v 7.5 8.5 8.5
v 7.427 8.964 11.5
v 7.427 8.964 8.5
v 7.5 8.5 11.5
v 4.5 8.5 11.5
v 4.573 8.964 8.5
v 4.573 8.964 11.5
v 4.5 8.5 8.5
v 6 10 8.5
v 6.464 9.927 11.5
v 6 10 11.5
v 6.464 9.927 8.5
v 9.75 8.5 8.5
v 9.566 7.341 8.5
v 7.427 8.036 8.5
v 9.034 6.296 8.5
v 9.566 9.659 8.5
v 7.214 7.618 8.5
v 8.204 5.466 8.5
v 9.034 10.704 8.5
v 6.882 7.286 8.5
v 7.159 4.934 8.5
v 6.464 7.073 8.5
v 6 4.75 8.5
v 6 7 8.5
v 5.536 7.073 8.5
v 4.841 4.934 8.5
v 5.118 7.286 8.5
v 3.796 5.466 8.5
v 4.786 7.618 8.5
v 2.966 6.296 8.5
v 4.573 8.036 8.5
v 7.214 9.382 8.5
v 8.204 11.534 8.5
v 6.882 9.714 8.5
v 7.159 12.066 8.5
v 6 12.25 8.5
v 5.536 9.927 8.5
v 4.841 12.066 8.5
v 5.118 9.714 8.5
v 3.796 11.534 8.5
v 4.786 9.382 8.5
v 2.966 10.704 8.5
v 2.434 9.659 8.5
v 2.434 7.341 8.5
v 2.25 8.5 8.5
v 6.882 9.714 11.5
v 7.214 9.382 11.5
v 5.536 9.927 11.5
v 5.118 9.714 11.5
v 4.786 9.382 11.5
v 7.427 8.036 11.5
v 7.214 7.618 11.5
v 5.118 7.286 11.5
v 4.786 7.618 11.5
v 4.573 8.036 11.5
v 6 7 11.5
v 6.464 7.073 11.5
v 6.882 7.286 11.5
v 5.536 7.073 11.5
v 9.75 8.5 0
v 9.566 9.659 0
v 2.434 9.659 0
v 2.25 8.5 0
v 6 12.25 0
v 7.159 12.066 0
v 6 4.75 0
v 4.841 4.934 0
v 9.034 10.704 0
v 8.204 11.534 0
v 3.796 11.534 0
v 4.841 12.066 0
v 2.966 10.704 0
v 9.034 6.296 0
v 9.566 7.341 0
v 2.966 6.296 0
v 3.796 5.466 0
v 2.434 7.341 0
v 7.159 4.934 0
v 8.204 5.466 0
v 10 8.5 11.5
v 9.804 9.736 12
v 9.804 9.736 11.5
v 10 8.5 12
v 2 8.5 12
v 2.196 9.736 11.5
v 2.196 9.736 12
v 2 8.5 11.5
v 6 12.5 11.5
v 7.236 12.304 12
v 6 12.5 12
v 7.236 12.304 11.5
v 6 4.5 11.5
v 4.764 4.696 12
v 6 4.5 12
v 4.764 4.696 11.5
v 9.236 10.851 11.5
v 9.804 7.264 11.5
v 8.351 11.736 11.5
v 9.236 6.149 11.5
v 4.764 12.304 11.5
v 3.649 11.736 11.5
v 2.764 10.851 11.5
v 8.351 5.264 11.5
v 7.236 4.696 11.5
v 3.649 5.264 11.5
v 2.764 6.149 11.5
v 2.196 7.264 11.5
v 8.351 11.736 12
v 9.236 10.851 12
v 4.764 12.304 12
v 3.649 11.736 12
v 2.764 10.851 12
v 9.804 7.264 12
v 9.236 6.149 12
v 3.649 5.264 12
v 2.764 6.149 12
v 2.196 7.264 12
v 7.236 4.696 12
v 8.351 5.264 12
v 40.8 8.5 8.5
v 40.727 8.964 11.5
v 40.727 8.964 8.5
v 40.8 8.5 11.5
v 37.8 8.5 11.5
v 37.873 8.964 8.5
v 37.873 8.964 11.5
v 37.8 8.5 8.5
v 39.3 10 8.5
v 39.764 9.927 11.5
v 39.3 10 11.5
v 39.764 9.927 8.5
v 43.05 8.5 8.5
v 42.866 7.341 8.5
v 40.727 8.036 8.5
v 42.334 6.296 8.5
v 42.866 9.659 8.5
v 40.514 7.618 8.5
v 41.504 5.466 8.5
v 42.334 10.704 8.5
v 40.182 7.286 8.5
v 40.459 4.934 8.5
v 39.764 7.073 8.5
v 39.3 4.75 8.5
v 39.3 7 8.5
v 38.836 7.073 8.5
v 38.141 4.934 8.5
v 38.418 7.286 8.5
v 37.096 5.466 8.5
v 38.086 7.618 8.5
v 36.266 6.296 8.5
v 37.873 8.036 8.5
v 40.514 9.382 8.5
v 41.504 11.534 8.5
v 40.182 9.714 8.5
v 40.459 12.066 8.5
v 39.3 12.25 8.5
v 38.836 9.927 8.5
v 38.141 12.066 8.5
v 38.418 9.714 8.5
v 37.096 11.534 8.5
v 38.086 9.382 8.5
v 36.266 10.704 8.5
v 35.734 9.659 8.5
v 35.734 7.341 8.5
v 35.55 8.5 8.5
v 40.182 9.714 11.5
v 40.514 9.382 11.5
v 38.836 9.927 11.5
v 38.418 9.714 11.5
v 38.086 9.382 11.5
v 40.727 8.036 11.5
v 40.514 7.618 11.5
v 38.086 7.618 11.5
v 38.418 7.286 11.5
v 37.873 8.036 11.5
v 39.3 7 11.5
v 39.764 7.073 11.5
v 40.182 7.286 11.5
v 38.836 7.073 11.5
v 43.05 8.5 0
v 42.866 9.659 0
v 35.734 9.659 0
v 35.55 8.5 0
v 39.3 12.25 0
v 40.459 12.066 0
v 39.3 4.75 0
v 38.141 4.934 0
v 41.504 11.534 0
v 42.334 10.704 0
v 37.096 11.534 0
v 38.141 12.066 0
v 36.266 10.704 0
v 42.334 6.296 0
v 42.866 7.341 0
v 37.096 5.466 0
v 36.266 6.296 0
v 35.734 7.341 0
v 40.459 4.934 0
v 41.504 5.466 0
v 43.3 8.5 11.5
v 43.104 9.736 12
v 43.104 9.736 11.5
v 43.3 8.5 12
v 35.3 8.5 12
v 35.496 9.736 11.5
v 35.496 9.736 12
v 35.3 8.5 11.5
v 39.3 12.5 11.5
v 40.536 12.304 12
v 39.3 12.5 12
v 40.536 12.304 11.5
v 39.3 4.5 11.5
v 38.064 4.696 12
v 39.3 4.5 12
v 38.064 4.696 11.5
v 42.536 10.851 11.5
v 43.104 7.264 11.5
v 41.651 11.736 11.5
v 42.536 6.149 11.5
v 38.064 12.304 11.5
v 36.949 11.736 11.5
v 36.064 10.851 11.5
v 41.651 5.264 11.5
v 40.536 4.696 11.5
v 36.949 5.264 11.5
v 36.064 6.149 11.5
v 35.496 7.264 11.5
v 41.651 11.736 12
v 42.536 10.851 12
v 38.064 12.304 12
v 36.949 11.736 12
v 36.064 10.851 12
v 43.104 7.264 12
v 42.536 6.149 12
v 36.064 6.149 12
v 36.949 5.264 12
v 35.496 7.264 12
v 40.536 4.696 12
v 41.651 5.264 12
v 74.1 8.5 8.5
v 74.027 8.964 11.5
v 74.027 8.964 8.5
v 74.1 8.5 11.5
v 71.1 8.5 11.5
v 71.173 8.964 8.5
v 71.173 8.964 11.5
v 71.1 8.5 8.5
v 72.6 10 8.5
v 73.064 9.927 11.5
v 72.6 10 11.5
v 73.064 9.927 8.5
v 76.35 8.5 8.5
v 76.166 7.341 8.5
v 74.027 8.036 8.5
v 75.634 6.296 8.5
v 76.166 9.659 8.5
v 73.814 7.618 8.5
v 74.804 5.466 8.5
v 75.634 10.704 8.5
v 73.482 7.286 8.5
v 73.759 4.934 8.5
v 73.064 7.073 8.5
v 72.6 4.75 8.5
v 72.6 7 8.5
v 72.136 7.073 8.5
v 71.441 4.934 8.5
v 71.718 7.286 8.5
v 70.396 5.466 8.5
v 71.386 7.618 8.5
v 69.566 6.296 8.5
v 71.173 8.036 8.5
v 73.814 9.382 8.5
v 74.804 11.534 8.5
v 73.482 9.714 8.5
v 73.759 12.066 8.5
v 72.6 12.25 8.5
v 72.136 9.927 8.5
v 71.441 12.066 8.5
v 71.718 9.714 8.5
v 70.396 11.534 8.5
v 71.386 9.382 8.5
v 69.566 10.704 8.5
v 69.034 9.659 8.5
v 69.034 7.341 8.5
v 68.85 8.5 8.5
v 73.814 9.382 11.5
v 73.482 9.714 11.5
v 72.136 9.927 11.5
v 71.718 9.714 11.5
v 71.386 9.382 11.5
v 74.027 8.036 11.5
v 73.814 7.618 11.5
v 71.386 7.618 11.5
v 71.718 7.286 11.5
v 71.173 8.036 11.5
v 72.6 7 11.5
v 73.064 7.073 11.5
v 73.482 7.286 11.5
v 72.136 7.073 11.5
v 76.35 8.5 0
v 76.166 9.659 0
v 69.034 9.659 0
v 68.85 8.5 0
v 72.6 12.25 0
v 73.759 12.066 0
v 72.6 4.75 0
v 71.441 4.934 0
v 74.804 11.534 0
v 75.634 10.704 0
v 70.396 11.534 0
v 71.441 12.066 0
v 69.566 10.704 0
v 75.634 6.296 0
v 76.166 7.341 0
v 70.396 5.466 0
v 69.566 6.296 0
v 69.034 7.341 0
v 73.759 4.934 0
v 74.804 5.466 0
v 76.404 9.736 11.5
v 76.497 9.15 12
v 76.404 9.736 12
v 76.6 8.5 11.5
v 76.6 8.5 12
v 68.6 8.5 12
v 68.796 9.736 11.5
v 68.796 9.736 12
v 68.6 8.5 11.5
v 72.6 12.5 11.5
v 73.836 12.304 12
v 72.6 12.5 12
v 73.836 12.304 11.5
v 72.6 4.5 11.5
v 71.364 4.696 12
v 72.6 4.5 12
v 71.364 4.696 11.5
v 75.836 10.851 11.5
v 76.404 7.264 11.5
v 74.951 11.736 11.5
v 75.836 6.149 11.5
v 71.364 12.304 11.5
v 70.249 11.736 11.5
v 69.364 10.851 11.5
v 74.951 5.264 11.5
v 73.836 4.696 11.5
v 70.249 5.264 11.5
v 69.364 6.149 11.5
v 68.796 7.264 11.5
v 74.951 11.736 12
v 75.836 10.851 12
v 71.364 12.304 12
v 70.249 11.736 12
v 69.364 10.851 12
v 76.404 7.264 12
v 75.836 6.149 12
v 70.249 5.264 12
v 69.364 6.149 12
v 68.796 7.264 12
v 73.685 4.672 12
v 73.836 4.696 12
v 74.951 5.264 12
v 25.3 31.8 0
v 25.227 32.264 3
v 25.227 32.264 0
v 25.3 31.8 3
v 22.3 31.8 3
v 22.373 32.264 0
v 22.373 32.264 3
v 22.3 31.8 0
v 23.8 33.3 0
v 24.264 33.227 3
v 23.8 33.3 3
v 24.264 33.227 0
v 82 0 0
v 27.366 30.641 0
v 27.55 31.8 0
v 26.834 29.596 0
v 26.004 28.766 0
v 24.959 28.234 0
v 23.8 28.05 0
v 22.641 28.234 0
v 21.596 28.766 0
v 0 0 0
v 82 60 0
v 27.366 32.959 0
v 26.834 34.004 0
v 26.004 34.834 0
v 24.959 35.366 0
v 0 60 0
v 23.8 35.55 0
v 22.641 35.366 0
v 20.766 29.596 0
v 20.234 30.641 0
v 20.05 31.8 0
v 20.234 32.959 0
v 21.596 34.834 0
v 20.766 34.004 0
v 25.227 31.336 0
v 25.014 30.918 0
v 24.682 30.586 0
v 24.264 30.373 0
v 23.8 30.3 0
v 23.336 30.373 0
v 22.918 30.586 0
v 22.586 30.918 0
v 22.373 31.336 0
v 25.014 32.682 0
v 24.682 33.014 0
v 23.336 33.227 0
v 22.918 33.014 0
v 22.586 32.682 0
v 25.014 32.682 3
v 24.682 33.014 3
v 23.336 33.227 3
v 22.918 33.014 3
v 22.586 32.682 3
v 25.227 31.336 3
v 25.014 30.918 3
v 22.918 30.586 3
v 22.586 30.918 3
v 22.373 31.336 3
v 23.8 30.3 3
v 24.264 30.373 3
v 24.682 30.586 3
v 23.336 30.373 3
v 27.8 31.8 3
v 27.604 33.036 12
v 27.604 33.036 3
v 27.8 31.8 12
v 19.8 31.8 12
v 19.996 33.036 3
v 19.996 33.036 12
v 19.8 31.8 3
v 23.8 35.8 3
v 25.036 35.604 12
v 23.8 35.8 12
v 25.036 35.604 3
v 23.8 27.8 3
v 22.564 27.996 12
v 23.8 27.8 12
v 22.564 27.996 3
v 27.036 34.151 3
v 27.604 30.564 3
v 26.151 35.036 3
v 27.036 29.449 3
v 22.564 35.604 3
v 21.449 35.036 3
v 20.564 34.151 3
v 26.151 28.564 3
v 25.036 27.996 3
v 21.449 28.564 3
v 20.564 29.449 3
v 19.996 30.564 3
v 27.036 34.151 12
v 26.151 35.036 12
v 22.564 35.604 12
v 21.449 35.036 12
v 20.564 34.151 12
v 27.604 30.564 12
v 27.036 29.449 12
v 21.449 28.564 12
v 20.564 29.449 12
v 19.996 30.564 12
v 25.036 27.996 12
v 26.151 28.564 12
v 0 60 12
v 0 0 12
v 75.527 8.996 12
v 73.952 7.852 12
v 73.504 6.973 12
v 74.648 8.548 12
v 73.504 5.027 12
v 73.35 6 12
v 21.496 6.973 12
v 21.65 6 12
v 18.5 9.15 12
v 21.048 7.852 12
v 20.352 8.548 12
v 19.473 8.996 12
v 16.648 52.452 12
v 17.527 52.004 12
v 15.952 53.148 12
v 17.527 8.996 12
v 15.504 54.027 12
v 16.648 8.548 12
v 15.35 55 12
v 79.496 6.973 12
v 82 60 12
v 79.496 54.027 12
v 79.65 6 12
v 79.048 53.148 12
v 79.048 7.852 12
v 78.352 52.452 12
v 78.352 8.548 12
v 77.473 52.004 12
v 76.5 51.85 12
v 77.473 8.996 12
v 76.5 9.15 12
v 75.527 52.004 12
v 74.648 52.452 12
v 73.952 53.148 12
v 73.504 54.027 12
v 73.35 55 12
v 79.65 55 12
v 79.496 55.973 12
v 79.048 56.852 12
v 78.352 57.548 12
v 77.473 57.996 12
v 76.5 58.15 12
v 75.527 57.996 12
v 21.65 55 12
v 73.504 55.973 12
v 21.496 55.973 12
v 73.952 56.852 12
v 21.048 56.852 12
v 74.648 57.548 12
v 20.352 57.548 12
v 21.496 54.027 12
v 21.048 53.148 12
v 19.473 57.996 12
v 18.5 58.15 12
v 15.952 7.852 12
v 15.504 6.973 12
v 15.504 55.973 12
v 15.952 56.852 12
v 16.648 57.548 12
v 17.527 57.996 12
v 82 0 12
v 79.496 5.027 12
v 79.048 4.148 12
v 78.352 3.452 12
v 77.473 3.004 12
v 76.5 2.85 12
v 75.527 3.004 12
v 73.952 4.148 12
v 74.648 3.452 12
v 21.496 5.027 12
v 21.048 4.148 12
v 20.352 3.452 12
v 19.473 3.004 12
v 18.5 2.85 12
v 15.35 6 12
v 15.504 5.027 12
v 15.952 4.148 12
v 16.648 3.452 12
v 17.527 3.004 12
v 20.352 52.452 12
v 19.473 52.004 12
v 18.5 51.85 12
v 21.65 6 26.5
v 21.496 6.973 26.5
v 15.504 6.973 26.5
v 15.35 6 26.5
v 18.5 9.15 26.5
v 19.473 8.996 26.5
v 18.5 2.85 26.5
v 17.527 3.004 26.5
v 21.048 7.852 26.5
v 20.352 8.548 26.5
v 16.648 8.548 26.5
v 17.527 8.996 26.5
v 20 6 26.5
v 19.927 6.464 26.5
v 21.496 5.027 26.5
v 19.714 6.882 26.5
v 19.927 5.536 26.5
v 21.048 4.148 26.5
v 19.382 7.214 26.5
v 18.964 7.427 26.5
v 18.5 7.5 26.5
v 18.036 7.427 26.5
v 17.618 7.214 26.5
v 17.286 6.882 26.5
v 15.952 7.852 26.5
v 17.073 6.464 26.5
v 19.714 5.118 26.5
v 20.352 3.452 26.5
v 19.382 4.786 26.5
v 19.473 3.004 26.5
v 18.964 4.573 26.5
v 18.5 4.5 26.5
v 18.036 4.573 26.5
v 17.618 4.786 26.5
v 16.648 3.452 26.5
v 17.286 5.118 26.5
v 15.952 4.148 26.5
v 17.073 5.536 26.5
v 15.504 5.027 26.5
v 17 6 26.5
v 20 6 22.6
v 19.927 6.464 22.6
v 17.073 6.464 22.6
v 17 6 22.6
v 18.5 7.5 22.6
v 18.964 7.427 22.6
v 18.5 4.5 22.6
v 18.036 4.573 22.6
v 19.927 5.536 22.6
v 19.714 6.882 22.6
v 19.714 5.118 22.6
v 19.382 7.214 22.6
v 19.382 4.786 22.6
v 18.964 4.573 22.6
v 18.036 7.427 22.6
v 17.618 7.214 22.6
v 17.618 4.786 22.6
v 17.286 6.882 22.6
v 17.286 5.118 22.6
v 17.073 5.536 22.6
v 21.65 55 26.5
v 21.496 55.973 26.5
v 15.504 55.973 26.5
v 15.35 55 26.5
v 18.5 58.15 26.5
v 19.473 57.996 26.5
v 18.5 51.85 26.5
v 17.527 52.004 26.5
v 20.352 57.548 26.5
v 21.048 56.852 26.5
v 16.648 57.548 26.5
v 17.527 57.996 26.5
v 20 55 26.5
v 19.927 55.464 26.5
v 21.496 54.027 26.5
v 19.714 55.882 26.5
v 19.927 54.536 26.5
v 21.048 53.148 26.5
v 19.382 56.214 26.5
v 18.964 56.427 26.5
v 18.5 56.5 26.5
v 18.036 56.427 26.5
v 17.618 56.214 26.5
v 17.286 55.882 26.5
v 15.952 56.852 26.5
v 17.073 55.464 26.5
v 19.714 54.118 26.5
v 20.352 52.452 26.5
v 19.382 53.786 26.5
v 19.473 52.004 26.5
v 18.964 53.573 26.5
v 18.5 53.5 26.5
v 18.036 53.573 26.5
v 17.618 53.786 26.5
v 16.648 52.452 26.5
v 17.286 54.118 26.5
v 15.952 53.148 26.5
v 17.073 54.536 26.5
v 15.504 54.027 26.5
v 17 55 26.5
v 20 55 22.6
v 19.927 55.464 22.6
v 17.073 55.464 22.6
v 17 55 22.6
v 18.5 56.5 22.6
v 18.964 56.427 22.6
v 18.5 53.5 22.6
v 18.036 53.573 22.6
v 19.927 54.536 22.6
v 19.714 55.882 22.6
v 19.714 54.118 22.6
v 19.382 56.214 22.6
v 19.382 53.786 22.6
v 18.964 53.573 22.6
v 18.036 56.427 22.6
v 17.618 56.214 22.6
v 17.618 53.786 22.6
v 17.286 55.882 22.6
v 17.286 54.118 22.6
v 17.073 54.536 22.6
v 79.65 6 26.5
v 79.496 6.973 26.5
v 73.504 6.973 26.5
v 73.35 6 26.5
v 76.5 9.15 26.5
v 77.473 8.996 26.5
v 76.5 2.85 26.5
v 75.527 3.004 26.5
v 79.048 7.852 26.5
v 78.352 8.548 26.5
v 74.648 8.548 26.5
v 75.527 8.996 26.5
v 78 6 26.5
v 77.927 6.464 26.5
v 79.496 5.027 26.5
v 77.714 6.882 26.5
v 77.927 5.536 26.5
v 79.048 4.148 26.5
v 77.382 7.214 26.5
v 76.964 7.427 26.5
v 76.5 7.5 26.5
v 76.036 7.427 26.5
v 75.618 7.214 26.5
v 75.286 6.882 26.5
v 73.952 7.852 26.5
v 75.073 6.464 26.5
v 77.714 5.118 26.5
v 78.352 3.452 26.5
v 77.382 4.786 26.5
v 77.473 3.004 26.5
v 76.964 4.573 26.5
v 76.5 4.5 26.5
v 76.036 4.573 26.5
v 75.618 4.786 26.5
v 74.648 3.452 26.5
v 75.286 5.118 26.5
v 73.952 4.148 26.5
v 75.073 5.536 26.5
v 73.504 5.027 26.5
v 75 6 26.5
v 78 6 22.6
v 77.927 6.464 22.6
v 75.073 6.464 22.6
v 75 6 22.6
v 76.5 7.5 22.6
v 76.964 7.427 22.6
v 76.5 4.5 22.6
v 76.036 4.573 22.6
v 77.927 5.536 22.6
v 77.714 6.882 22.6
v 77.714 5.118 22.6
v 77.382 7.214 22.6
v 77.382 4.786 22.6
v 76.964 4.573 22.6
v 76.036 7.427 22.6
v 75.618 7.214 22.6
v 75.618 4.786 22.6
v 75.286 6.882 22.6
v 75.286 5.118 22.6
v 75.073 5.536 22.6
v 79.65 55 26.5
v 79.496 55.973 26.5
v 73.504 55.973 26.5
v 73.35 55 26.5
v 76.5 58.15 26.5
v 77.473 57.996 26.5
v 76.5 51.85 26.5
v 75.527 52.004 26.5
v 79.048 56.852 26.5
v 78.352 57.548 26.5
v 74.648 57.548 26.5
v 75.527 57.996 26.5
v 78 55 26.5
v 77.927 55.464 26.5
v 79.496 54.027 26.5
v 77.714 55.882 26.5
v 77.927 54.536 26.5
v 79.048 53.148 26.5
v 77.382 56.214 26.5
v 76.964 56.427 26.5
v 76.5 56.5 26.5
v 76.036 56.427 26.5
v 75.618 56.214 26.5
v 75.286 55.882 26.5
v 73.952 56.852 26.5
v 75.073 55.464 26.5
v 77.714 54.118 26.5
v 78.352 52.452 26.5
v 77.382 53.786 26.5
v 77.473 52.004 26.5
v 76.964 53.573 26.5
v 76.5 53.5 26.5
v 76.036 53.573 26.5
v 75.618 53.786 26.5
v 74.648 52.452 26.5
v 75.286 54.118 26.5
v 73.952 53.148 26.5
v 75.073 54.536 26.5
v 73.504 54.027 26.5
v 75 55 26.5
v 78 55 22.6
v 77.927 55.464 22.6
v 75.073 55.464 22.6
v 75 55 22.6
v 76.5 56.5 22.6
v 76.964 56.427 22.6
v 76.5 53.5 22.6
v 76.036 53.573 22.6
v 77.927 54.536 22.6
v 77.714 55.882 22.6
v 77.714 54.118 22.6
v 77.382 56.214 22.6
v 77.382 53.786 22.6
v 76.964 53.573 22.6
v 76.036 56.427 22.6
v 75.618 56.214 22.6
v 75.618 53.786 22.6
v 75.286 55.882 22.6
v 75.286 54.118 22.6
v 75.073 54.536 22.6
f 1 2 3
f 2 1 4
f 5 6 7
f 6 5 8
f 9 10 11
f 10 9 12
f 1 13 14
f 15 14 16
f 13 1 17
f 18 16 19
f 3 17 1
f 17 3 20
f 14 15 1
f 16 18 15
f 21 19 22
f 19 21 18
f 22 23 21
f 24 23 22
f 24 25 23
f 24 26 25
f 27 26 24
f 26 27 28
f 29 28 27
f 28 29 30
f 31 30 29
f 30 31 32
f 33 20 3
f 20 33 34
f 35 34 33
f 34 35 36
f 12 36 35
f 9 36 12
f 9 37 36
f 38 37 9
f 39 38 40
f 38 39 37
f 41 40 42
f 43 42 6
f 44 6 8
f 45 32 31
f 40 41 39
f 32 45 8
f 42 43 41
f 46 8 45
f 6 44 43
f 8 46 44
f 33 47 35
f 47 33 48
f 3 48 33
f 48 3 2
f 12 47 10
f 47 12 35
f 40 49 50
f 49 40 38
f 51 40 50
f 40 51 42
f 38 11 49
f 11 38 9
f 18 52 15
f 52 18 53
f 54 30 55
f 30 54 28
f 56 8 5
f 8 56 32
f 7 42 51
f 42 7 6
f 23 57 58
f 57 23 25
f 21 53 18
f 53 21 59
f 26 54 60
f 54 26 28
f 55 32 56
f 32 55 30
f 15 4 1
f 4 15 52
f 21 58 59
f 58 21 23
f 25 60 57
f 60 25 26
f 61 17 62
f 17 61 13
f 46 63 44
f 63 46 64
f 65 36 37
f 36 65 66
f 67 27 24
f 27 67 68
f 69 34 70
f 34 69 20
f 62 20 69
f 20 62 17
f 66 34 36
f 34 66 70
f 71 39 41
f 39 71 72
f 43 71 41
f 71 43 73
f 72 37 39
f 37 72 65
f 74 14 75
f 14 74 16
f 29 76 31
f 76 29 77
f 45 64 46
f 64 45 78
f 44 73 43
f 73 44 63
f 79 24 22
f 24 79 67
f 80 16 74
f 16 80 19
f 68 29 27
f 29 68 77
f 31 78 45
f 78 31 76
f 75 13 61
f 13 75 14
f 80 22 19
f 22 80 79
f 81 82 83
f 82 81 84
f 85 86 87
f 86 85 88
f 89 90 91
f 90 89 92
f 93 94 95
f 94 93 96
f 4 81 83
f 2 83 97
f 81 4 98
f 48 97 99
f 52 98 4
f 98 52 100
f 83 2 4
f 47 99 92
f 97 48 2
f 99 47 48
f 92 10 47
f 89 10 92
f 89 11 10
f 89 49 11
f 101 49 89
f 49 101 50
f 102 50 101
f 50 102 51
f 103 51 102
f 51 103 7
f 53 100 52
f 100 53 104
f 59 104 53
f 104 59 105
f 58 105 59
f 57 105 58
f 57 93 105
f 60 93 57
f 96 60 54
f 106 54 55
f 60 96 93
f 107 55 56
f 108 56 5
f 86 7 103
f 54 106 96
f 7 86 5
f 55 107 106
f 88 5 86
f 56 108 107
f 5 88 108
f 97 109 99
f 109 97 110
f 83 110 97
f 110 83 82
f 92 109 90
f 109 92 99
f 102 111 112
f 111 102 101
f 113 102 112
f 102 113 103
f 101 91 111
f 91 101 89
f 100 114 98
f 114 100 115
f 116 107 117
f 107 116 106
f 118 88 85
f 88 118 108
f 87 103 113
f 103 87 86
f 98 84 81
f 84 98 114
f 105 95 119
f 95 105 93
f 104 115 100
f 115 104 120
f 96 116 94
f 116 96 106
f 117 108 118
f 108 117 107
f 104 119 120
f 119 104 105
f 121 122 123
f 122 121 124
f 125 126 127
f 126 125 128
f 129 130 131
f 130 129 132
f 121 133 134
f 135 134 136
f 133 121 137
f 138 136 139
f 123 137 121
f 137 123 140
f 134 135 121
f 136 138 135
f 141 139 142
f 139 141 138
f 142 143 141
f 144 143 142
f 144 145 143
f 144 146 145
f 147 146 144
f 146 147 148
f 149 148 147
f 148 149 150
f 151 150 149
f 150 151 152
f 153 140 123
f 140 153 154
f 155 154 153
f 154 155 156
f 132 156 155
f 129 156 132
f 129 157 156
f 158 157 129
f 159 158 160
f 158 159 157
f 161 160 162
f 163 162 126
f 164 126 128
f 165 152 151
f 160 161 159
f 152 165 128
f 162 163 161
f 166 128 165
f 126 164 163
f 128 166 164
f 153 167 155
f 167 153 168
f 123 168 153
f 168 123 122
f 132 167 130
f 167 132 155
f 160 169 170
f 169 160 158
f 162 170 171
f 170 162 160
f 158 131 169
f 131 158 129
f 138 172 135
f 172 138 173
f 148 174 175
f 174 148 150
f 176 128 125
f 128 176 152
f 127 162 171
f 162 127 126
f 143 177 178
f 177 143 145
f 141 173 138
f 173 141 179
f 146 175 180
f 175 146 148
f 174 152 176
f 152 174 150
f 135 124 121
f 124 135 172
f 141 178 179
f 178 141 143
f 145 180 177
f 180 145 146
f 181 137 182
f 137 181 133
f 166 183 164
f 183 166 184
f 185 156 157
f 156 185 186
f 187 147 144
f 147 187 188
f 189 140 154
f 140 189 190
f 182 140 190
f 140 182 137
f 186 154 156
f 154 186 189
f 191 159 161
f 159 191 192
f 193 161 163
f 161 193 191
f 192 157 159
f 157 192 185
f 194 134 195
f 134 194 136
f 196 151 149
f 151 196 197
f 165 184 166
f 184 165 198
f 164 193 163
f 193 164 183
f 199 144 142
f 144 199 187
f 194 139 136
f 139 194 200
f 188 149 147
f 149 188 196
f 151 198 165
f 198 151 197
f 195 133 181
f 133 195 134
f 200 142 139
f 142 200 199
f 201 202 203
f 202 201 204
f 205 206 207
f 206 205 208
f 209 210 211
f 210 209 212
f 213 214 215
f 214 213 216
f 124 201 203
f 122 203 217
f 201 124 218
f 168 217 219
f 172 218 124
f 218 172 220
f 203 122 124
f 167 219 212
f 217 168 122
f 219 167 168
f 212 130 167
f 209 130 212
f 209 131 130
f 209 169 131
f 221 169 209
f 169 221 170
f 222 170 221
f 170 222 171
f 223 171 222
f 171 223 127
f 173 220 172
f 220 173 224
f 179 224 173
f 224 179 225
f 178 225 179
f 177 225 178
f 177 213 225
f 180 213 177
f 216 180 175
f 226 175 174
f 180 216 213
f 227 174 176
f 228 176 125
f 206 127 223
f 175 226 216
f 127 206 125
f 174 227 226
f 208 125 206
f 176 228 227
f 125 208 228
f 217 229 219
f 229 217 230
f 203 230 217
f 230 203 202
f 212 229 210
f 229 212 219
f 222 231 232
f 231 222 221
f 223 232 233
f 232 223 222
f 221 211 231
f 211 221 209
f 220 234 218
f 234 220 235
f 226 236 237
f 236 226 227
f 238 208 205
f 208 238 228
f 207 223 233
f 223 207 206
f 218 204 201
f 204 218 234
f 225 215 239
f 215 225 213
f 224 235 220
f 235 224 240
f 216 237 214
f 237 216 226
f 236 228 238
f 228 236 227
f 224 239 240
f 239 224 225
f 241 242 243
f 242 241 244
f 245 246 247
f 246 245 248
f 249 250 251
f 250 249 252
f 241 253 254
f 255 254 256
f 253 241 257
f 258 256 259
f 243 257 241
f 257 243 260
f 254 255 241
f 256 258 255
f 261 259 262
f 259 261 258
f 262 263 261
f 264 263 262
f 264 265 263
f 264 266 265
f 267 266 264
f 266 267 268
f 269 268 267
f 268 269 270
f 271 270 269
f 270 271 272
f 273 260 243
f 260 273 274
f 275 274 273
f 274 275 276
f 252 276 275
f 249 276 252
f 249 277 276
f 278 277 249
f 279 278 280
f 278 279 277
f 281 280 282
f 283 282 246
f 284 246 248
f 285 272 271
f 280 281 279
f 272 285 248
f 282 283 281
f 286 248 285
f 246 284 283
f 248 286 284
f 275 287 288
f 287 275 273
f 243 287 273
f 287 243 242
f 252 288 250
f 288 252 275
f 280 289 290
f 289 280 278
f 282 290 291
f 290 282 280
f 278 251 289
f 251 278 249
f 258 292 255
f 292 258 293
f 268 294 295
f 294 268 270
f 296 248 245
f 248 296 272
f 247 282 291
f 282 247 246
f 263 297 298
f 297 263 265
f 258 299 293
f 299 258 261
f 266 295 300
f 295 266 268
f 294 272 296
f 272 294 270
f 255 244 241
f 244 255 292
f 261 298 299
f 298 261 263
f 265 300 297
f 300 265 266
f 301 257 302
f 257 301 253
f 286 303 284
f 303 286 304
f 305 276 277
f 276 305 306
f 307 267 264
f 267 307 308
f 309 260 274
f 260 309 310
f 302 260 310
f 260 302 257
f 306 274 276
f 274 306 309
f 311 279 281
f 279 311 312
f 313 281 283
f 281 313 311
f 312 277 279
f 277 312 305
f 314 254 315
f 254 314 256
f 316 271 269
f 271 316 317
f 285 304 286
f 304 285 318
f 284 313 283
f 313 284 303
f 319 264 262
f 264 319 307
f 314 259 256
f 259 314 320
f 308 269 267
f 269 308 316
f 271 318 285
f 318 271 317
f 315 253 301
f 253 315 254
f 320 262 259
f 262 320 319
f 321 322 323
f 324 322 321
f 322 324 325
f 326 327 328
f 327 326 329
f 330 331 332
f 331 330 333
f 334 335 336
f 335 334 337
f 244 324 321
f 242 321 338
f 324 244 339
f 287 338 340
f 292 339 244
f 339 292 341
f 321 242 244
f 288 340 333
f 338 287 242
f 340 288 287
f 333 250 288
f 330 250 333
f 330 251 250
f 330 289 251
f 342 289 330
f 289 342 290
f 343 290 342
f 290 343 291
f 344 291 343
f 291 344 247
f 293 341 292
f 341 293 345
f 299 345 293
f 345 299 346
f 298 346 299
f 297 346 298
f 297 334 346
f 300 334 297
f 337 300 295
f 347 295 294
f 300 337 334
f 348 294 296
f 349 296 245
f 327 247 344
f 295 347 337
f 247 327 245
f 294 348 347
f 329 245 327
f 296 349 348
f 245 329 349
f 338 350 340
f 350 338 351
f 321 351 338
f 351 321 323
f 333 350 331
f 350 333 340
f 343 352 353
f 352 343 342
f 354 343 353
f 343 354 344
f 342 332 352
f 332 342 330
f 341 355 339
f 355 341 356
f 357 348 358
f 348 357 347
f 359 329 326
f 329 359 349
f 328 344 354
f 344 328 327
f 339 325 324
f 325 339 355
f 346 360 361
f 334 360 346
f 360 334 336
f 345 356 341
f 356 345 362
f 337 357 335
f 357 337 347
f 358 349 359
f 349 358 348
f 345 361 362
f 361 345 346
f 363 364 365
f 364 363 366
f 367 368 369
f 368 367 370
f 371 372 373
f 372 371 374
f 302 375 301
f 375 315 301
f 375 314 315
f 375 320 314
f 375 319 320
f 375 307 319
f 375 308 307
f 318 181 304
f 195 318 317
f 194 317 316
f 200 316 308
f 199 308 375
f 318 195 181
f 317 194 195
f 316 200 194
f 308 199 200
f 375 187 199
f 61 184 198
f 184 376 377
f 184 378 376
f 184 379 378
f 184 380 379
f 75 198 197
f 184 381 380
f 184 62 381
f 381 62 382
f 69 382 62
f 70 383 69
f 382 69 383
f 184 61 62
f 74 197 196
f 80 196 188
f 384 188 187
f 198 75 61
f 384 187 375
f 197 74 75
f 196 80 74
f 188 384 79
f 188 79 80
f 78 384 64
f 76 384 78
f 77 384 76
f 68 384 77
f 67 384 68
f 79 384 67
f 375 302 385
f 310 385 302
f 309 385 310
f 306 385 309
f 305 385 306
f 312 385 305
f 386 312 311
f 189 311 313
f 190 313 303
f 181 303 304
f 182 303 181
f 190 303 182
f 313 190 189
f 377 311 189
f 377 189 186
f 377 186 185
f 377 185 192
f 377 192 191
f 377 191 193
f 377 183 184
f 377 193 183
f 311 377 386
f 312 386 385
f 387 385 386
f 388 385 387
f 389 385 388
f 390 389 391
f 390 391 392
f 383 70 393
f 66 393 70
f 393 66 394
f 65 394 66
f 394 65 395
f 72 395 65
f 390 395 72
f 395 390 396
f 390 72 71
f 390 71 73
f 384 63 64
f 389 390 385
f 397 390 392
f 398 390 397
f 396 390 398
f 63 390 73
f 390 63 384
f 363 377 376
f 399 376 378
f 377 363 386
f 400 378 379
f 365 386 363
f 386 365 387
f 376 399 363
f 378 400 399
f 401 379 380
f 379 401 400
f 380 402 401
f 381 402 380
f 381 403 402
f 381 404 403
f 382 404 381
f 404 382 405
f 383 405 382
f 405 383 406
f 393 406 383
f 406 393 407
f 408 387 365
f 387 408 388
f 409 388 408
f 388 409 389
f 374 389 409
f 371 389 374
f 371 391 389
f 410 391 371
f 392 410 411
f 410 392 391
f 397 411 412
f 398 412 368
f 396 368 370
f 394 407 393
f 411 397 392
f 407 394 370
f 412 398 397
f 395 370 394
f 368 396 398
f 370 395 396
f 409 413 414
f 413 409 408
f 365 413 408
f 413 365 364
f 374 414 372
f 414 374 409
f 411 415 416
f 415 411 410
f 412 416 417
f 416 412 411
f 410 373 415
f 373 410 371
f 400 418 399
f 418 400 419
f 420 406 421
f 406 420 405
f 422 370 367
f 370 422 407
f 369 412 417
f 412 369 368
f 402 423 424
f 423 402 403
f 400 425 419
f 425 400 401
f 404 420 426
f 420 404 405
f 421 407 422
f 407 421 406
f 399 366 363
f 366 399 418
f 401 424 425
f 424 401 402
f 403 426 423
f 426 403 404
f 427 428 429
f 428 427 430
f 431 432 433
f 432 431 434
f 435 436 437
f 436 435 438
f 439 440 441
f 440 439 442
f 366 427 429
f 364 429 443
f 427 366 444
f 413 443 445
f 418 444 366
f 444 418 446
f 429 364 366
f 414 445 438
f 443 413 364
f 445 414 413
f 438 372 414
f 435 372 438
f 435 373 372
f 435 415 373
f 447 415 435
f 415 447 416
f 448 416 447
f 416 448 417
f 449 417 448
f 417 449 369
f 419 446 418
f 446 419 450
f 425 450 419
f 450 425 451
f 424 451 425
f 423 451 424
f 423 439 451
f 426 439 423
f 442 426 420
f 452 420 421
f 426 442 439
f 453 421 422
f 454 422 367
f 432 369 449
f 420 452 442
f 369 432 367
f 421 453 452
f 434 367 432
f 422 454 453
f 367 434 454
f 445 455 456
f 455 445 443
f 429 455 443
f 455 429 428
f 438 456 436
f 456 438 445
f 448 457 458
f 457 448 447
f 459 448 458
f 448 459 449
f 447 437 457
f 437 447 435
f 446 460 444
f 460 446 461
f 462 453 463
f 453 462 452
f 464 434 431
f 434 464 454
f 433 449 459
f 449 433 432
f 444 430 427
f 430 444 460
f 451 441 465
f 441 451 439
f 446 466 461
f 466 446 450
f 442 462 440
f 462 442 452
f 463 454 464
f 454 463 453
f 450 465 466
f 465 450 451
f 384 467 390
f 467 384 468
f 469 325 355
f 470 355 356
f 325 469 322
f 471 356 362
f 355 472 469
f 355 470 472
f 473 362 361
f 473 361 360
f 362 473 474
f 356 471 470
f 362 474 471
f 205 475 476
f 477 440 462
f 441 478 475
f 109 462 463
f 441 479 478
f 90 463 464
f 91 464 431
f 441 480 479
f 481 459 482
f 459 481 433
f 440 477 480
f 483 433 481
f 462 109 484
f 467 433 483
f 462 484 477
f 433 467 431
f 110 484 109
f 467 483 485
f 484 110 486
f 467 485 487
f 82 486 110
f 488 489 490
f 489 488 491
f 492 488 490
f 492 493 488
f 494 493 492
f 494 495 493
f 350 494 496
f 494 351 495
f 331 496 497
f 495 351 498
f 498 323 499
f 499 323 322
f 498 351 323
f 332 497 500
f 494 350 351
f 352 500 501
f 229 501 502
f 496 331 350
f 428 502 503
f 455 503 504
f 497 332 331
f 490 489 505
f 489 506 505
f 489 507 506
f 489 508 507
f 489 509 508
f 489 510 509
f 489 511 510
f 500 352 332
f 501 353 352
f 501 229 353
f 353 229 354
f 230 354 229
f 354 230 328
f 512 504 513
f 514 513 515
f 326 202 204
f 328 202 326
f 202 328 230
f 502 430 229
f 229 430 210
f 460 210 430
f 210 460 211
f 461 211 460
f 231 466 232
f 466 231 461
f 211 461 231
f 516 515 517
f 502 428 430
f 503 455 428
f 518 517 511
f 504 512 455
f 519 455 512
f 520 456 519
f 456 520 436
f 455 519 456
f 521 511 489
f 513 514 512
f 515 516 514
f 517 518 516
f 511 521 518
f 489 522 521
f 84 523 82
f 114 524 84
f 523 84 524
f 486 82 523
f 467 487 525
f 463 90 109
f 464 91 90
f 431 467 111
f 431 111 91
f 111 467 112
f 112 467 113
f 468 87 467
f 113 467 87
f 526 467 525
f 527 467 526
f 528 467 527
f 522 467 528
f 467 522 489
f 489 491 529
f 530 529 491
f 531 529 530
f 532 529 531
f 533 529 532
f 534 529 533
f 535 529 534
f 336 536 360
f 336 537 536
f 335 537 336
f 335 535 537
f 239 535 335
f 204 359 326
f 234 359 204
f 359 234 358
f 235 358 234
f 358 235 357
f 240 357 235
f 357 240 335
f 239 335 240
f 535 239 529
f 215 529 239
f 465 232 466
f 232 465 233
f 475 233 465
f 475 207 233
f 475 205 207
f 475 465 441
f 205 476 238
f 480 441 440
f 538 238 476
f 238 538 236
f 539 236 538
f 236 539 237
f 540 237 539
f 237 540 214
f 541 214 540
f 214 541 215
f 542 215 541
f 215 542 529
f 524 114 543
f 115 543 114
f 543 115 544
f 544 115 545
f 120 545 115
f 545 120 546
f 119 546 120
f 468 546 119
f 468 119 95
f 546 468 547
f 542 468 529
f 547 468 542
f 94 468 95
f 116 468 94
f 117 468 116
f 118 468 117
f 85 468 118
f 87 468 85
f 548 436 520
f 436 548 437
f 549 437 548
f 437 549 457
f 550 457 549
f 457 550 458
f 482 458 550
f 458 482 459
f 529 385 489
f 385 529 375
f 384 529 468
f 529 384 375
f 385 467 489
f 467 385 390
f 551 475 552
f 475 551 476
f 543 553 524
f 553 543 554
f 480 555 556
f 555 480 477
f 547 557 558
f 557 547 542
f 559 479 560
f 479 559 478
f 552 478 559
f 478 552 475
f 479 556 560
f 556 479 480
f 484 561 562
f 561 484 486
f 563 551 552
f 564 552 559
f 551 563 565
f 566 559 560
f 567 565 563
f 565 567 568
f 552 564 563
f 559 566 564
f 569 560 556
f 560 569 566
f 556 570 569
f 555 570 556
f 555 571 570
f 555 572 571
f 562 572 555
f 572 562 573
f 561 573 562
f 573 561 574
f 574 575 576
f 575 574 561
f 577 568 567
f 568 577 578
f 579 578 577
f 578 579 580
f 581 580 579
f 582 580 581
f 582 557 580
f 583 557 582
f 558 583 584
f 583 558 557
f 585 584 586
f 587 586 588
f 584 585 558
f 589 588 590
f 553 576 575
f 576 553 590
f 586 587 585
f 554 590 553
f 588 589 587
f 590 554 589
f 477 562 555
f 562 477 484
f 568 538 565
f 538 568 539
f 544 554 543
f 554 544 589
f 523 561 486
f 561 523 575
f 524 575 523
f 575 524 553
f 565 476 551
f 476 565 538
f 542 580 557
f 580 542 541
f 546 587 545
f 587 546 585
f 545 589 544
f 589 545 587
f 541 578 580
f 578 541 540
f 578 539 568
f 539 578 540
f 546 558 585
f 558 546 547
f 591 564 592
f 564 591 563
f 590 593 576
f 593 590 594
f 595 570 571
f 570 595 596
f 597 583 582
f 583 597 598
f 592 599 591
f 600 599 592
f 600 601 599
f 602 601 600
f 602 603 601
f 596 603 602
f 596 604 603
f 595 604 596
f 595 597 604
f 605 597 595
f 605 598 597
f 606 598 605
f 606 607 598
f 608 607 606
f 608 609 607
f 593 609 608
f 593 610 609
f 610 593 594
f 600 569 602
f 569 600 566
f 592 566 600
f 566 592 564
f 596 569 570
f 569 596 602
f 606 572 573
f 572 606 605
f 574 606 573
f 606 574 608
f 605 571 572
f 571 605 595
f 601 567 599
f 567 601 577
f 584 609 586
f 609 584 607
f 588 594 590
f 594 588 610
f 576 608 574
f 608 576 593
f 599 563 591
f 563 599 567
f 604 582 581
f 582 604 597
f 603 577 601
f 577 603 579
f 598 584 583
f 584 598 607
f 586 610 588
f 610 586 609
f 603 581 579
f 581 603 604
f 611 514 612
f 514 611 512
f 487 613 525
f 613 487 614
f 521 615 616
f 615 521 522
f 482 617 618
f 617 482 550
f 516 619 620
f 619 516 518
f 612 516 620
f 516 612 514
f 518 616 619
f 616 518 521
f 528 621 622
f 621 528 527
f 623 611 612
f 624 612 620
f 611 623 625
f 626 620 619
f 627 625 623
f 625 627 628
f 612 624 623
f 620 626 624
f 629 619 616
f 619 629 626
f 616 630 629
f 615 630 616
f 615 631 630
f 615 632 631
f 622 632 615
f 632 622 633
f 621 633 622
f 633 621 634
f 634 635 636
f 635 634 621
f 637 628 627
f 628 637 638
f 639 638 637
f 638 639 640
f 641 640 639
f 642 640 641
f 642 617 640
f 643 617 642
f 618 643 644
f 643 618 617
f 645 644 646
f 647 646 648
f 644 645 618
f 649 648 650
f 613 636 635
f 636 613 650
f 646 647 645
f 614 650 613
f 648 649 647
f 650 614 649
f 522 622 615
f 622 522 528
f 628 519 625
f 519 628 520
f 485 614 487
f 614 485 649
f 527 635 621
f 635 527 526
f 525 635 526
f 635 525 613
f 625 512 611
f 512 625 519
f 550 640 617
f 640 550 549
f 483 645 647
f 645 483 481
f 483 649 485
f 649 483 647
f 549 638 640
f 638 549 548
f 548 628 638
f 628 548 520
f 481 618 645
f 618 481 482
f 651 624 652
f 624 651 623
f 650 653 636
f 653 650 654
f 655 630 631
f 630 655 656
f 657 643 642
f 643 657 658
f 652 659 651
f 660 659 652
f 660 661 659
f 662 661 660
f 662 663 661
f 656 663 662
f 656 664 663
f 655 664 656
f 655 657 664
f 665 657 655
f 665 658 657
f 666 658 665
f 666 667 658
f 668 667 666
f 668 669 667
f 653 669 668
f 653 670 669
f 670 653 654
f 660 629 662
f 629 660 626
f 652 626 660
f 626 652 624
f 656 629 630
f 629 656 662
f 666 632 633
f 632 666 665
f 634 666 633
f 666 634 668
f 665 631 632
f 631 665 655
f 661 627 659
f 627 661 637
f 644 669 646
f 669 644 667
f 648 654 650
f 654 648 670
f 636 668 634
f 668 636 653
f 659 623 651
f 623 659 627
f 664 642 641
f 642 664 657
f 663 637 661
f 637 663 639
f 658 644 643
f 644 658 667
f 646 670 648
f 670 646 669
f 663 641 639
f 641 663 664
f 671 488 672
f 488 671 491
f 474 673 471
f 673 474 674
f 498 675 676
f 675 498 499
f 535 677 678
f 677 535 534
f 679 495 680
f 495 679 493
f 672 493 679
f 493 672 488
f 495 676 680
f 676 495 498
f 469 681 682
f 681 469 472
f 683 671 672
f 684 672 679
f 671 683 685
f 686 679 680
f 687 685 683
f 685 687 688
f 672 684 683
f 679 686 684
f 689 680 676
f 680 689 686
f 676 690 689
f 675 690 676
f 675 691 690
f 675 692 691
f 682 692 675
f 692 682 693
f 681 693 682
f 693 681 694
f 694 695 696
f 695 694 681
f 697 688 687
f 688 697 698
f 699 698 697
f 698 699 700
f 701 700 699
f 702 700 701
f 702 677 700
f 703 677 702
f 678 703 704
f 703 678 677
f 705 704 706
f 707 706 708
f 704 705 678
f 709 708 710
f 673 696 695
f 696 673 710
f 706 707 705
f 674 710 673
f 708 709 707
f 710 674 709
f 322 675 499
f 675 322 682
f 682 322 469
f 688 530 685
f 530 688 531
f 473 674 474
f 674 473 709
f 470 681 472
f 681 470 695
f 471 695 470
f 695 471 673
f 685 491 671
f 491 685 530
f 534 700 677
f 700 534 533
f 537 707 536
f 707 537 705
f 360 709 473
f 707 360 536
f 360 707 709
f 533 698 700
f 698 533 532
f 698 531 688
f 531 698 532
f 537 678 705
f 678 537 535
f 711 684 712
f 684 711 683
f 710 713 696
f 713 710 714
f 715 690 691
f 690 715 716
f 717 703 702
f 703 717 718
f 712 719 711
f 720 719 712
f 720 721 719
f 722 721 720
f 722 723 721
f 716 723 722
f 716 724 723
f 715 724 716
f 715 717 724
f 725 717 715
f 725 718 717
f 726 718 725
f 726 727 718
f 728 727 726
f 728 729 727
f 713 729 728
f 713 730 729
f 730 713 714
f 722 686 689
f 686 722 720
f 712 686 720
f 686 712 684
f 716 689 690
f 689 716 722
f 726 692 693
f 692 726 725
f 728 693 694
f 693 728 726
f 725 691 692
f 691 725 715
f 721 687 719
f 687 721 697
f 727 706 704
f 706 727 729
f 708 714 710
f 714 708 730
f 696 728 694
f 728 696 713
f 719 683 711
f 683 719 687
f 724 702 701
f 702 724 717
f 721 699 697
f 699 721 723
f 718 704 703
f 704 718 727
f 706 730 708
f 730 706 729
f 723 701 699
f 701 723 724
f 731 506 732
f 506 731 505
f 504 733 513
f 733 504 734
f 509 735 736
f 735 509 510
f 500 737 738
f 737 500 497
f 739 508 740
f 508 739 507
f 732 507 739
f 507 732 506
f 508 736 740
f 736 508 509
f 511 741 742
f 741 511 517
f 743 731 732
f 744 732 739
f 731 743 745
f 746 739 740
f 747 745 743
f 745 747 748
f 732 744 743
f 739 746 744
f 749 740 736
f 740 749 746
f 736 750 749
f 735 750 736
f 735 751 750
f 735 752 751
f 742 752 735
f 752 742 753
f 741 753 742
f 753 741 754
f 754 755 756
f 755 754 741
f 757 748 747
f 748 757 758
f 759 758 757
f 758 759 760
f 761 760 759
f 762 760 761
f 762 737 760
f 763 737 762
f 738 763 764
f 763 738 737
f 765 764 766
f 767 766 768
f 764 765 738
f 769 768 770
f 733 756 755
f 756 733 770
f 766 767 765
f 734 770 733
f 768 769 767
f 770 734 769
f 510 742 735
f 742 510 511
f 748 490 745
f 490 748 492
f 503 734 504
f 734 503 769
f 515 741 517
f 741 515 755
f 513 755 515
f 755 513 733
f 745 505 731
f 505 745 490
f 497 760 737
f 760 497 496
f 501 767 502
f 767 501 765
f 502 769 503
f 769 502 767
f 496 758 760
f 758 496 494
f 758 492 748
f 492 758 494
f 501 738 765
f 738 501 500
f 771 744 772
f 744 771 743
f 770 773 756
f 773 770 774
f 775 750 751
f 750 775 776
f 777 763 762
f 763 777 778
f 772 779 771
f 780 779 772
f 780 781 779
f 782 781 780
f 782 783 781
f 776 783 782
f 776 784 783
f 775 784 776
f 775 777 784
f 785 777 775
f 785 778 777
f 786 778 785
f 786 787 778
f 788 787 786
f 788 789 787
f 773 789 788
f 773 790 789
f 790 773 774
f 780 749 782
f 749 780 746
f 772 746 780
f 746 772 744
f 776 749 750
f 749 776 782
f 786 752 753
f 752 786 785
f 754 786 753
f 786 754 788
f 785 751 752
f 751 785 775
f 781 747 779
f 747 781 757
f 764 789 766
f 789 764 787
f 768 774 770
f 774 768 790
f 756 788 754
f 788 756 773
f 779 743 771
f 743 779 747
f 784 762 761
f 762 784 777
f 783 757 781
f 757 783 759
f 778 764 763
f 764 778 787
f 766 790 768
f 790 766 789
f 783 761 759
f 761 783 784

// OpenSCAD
pi_mount();

module pi_mount() {
    difference() {
        cube([82, 60, 12]);

        translate([6, 8.5, 0]) union() {
            translate([0, 0, 8.5]) gc_hole(h=10);
            translate([33.3, 0, 8.5]) gc_hole(h=10);
            translate([66.6, 0, 8.5]) gc_hole(h=10);
            translate([17.8, 23.3, 0]) gc_hole(h=10);
        }
    }

    for (x = [18.5, 18.5+58]) {
        for (y = [6, 6+49]) {
            translate([x, y, 12]) pi_hole(h=14.5);
        }
    }



    module gc_hole(h=1) {
        $fn = 20;
        cylinder(h=h, d=3);
        translate([0, 0, -h]) cylinder(h=h, d=7.5);
        translate([0, 0, 3]) cylinder(h=h, d=8);
    }

    module pi_hole(h=5) {
        $fn = 20;
        difference(){
            cylinder(h=h, d=6.3);
            translate([0, 0, h-3.9]) cylinder(h=4, d=3);
        }
    }
}
